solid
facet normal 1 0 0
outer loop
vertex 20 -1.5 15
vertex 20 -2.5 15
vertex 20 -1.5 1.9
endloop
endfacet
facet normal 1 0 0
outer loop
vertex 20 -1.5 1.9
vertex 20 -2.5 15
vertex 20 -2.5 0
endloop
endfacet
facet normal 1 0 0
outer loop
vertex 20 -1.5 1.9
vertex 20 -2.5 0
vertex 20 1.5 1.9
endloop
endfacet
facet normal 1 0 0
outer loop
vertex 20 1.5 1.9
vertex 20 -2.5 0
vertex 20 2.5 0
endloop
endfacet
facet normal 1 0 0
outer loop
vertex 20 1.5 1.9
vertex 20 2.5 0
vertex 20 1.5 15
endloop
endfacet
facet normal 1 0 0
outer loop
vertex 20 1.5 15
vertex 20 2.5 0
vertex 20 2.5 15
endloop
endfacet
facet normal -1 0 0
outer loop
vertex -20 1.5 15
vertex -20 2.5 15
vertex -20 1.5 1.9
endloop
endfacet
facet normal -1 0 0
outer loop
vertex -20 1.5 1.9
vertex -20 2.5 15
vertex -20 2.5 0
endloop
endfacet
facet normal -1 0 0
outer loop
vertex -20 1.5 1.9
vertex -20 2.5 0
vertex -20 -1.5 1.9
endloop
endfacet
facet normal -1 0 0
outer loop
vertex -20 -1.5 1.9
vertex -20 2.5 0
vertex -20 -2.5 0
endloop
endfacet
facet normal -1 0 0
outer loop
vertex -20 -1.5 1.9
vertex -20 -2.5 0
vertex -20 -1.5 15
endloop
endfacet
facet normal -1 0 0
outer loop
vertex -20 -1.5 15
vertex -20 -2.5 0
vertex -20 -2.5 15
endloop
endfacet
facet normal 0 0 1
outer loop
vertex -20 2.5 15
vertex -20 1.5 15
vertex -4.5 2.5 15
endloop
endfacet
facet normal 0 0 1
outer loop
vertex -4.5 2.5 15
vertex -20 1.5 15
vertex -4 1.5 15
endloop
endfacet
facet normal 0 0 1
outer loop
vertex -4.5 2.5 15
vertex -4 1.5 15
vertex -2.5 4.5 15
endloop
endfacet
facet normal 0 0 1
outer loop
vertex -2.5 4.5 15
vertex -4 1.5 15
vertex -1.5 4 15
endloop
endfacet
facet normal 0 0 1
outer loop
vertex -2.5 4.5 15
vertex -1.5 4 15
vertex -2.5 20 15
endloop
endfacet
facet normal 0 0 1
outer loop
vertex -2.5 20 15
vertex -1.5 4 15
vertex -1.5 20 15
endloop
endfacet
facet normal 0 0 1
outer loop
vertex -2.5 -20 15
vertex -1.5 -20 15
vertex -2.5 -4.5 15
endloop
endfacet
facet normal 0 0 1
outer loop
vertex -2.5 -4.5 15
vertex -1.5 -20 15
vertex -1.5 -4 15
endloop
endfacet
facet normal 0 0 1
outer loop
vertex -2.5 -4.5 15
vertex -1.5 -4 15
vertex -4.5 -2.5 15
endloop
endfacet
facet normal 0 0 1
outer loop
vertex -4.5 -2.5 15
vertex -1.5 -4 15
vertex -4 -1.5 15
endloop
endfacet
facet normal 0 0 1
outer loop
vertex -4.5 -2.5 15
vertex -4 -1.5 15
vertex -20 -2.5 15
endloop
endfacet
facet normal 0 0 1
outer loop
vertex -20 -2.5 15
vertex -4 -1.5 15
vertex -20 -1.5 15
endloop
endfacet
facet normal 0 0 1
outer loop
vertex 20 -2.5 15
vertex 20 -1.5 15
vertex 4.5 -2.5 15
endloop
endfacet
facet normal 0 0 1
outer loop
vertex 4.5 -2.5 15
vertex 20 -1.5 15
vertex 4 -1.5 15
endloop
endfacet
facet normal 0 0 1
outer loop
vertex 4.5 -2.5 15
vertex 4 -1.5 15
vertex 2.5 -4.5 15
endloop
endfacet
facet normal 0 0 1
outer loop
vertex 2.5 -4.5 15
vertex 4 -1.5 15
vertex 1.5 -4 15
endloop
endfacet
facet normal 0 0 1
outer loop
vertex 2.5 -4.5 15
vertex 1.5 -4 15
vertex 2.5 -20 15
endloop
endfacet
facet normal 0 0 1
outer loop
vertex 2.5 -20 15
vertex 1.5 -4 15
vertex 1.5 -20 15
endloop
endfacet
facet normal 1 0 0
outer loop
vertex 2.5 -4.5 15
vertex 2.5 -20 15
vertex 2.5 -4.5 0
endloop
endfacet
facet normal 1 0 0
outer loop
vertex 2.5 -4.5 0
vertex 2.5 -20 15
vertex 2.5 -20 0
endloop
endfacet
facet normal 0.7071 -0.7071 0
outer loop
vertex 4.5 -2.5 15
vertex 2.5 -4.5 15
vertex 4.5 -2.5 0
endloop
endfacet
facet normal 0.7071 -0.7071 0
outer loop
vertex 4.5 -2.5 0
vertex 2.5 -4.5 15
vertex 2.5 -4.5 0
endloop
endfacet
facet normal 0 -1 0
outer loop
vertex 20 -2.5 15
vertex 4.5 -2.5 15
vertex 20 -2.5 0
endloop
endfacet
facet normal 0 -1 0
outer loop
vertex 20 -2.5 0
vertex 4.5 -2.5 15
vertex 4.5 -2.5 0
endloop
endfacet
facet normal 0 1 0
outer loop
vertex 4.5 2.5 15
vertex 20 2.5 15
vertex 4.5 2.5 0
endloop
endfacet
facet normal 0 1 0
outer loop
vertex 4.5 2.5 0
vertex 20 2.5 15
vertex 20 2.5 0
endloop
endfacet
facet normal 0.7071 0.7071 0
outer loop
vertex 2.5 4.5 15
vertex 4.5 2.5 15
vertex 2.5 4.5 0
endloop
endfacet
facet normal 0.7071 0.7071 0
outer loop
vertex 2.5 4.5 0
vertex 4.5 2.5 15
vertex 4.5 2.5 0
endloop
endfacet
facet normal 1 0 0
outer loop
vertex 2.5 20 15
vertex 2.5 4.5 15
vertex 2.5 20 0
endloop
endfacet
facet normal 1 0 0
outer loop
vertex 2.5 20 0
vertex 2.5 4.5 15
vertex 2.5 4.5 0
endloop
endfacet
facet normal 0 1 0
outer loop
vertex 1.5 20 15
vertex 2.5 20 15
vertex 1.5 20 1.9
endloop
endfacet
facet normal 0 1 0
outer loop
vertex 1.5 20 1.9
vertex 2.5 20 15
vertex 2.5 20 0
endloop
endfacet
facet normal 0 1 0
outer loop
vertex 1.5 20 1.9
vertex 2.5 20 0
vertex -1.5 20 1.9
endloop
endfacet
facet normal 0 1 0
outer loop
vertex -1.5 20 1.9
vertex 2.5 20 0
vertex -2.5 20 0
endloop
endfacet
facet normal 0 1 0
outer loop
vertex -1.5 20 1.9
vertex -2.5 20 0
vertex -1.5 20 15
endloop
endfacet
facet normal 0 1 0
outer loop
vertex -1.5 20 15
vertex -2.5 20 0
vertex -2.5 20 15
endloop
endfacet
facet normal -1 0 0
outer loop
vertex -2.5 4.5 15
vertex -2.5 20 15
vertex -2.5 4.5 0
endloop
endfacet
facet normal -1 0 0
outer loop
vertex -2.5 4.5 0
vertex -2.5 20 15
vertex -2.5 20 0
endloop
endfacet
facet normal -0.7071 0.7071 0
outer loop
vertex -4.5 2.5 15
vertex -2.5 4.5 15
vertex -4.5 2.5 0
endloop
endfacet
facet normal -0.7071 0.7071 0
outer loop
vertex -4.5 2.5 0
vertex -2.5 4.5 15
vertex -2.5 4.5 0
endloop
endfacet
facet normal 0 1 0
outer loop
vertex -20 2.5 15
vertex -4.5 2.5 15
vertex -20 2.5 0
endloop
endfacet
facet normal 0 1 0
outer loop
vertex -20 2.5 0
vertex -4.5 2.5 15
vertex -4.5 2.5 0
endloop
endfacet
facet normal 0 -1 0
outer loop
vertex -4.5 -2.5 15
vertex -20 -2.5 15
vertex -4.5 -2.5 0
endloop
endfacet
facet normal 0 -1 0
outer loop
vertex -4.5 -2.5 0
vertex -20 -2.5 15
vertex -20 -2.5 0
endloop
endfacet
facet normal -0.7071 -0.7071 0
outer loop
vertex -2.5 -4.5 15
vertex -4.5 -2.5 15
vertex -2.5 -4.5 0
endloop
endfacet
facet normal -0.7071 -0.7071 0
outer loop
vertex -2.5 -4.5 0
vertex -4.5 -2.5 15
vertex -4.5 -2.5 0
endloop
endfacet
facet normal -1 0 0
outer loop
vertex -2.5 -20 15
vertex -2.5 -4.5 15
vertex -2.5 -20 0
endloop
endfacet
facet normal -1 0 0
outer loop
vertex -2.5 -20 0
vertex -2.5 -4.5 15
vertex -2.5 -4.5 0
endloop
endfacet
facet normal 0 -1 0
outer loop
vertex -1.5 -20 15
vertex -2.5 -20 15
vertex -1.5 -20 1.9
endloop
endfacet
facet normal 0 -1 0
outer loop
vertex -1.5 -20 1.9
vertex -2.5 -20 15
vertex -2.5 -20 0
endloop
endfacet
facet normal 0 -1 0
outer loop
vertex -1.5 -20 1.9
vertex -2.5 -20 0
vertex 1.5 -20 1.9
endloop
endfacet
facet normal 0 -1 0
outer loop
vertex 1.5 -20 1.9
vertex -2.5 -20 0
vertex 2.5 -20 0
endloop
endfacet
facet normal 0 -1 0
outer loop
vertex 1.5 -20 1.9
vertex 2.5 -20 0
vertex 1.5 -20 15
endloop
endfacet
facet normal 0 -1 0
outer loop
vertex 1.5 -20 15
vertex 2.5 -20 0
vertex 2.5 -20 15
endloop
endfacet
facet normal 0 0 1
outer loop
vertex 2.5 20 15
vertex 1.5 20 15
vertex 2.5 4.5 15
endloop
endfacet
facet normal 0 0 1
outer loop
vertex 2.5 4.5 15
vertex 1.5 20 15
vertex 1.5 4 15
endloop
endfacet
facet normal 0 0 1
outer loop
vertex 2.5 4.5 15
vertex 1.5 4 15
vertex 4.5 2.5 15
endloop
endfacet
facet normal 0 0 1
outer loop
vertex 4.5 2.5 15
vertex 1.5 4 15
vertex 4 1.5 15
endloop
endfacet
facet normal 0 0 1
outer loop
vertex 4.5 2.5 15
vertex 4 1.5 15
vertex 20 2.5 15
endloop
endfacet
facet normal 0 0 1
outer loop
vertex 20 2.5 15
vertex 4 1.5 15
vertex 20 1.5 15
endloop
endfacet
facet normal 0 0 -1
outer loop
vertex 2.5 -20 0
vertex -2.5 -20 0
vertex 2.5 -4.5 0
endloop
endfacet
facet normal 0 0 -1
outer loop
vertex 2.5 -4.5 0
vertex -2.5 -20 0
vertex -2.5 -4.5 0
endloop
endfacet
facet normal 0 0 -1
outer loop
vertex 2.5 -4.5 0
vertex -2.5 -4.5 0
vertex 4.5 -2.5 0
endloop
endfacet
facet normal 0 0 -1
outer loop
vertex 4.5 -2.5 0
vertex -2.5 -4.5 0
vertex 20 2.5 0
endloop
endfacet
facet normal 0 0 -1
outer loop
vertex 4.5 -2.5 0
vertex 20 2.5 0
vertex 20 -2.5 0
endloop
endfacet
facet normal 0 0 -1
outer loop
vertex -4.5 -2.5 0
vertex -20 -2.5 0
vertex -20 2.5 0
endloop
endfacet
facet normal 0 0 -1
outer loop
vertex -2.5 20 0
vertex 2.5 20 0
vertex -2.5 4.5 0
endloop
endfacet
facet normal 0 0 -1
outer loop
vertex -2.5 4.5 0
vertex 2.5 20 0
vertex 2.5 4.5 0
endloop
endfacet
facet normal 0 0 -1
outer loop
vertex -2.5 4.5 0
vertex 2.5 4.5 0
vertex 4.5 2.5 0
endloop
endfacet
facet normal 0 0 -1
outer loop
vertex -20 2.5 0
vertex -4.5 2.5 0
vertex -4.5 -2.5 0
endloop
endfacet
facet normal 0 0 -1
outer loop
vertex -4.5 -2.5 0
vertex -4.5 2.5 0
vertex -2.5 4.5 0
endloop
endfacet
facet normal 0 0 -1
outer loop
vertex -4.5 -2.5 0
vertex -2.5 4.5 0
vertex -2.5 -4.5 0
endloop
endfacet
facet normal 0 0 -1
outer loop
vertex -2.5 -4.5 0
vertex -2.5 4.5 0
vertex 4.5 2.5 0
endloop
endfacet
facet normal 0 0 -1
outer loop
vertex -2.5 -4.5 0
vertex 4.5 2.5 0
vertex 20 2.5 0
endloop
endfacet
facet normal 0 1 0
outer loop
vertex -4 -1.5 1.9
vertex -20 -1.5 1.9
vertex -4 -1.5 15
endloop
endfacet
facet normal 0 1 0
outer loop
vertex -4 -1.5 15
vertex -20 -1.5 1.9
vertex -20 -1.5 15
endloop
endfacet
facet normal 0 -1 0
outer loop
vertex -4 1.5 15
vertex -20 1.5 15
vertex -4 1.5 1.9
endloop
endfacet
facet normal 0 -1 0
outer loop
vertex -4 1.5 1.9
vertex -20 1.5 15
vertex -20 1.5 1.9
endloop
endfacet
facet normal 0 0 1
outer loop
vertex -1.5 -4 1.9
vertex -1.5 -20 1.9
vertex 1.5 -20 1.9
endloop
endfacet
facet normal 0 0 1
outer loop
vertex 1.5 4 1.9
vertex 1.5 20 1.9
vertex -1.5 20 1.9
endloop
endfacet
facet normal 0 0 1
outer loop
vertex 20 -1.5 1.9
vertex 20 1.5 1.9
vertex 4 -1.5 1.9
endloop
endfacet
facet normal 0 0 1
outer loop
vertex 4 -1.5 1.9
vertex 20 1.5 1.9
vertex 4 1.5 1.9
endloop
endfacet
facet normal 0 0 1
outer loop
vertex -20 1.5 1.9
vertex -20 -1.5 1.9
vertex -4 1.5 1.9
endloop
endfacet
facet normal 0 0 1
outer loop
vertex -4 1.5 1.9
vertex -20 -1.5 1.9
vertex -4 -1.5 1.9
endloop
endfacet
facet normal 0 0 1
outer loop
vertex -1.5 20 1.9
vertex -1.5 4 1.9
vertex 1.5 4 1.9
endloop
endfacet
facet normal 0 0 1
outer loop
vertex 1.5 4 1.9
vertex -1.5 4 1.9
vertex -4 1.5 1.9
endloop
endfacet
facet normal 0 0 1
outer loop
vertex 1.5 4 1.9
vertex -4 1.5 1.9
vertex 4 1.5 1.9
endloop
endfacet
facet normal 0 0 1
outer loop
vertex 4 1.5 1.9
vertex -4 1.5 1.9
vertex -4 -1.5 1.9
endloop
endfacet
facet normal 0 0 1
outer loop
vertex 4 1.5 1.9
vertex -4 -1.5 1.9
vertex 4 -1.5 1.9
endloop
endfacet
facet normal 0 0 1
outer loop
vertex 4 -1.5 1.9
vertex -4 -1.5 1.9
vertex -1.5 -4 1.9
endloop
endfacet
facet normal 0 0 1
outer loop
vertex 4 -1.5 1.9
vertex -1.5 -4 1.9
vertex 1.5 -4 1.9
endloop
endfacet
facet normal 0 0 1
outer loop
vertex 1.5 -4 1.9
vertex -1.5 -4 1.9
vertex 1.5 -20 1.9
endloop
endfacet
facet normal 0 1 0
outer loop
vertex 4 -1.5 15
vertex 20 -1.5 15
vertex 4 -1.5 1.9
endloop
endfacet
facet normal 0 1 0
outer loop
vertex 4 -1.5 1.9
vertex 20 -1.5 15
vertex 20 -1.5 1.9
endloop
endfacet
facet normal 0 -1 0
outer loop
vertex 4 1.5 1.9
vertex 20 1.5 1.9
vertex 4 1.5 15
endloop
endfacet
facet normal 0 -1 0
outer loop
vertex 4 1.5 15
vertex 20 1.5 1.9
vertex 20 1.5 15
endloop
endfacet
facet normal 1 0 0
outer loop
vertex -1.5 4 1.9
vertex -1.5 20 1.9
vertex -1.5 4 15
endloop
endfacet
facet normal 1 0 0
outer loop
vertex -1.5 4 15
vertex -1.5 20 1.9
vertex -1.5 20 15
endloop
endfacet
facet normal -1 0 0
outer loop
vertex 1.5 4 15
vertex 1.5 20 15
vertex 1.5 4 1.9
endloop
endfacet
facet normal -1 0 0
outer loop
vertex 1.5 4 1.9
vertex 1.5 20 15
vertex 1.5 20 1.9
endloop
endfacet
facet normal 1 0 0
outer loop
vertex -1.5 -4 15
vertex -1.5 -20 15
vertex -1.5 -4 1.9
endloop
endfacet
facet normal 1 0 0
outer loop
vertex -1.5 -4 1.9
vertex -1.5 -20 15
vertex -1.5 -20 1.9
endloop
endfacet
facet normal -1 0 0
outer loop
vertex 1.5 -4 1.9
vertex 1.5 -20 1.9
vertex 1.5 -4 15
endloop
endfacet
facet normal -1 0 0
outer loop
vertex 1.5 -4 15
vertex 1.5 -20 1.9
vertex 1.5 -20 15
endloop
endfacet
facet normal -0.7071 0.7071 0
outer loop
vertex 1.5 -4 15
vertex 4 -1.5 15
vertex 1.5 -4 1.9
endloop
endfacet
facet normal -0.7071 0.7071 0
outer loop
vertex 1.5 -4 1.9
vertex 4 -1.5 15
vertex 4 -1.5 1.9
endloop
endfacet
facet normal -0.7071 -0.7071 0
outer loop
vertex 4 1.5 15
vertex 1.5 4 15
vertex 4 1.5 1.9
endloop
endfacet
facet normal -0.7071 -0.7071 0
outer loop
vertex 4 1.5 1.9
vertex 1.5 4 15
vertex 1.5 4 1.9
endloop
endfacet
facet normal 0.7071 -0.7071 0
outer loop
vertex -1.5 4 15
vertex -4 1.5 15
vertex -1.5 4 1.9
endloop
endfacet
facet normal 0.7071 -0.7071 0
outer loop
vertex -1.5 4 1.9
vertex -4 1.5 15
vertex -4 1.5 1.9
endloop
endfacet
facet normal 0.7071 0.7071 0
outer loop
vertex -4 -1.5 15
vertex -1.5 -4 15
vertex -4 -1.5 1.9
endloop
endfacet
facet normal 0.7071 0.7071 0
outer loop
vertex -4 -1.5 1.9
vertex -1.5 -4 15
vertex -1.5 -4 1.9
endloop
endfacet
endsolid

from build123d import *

# Parameters (mm, degrees)
RESSALTO_EXTRUS_O1_DEPTH = 15
ESBO_O2_W                = 40
ESBO_O2_H                = 3
ESBO_O2_W_2              = 3
ESBO_O2_H_2              = 40
CORTE_EXTRUS_O1_DEPTH    = 13.1
CHANFRO2_SIZE            = 2.5


with BuildPart() as part:
    # Esboço1 → Ressalto-extrusão1 (new body)
    with BuildSketch(Plane.XY):
        Polygon((2.5, 4.5), (2.5, 20), (-2.5, 20), (-2.5, 4.5), (-4.5, 2.5), (-20, 2.5), (-20, -2.5), (-4.5, -2.5), (-2.5, -4.5), (-2.5, -20), (2.5, -20), (2.5, -4.5), (4.5, -2.5), (20, -2.5), (20, 2.5), (4.5, 2.5), align=None)
    extrude(amount=RESSALTO_EXTRUS_O1_DEPTH)

    # Esboço2 → Corte-extrusão1 (cut)
    with BuildSketch(Plane.XY.offset(15)):
        Rectangle(ESBO_O2_W, ESBO_O2_H)
        Rectangle(ESBO_O2_W_2, ESBO_O2_H_2)
    extrude(amount=-CORTE_EXTRUS_O1_DEPTH, mode=Mode.SUBTRACT)

    # Chanfro2
    chanfro2_edges = [part.edges().sort_by_distance(p)[0] for p in [
        (-1.5, -1.5, 8.45),
        (1.5, 1.5, 8.45),
        (-1.5, 1.5, 8.45),
        (1.5, -1.5, 8.45),
    ]]
    chamfer(chanfro2_edges, length=CHANFRO2_SIZE)


solid = part.part
